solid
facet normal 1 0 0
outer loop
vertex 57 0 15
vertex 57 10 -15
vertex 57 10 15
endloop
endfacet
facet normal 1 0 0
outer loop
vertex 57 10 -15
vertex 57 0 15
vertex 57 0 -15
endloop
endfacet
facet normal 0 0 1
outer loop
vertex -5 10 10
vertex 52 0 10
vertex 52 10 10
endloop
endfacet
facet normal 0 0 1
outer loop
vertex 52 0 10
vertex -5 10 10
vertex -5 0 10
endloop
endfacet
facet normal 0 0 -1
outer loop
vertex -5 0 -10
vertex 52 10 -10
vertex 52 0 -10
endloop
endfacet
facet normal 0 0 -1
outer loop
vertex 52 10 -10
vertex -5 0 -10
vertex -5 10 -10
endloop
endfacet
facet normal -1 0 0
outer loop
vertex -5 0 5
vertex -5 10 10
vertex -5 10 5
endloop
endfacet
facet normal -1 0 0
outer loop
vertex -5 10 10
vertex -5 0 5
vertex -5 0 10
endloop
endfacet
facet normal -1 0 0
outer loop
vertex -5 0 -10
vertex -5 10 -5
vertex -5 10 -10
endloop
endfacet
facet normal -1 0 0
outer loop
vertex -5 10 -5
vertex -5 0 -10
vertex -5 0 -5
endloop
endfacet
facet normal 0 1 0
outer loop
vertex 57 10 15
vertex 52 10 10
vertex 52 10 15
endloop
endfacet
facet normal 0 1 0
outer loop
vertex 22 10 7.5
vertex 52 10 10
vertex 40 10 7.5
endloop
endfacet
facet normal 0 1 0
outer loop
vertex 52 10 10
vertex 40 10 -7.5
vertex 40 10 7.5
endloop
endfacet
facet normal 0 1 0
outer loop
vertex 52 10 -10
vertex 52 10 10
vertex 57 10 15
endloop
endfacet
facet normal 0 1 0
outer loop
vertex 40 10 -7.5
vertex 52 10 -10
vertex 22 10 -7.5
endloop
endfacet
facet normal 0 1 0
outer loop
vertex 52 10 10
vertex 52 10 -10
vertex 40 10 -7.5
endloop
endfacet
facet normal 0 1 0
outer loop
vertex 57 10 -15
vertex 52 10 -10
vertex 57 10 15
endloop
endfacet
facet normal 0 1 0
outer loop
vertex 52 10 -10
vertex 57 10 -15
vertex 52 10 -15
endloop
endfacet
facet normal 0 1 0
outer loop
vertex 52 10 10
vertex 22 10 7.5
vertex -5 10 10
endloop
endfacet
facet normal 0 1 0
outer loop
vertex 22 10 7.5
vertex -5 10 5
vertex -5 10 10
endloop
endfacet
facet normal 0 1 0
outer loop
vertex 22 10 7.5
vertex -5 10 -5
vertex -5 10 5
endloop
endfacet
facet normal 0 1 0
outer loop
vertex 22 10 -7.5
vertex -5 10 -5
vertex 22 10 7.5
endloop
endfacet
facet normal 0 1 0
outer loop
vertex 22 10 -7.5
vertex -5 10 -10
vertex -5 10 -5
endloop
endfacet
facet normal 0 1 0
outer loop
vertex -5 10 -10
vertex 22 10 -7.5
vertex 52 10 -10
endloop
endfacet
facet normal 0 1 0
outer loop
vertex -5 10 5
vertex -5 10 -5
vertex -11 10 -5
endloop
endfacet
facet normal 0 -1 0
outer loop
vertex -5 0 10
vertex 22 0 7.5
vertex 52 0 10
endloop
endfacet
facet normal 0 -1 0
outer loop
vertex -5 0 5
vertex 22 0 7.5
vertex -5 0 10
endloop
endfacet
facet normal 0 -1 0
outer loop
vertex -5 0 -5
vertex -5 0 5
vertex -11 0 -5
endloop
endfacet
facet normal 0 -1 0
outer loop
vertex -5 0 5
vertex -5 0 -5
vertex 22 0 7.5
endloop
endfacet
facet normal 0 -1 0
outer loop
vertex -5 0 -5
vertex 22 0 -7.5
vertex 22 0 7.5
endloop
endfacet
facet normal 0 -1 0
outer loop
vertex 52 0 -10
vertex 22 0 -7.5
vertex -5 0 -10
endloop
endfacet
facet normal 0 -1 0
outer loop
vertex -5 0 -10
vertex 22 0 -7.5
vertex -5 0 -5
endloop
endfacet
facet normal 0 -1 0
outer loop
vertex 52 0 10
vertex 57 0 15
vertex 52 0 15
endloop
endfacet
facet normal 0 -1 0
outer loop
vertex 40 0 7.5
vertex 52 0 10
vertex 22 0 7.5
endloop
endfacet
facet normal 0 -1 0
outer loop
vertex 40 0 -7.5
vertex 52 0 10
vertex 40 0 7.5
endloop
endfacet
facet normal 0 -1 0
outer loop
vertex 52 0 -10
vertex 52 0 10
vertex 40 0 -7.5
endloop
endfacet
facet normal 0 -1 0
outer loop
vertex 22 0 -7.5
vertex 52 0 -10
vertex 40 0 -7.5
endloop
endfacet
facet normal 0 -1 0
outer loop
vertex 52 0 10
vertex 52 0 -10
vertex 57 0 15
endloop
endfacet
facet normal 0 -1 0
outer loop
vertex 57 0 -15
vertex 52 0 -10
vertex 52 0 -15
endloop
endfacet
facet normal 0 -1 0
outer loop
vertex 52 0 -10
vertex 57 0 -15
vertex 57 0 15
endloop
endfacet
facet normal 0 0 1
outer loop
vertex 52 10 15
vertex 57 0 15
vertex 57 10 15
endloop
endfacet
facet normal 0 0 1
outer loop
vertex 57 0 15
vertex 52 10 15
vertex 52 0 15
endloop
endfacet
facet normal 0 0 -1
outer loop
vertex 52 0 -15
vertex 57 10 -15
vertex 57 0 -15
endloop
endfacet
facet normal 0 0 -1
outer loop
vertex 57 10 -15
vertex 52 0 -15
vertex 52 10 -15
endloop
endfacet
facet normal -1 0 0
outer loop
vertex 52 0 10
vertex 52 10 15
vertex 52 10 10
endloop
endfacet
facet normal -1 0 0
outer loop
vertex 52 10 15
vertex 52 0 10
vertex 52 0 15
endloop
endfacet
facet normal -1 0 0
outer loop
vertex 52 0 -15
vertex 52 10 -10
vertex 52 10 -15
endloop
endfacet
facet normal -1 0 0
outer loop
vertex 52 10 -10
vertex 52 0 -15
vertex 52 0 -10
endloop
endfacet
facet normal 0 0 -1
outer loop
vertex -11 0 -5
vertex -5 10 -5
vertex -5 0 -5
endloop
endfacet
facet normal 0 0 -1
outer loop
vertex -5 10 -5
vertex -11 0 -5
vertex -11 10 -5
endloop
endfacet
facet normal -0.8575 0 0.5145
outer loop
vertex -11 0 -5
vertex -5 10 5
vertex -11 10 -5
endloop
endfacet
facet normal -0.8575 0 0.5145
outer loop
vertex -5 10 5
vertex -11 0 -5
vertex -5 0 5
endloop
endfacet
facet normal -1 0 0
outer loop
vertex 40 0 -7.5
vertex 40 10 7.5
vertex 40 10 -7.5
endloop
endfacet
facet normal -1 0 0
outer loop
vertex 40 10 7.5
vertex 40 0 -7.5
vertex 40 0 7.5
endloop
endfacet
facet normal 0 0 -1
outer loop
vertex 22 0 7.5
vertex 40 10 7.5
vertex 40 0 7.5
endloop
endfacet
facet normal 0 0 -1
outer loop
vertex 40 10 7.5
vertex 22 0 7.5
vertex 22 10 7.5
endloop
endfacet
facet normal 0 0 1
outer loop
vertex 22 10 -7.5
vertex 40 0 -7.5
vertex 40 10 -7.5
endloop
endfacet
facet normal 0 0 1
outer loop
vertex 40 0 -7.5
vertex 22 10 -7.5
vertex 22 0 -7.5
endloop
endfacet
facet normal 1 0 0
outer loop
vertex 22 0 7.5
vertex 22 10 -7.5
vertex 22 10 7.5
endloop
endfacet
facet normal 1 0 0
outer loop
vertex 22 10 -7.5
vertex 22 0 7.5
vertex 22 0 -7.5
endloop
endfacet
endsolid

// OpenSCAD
difference() {
union() {

    translate([0-5, 0, -10])
        cube([60+2, 10, 20]);

    translate([50+2, 0, -15])
        cube([5, 10, 30]);

    // Driehoekige uitsparing
    translate([-6-5, 5, -5])
        rotate([90, 0, 0])
            linear_extrude(height=10, center=true)
                polygon([
                    [0, 0],
                    [10, 0],
                    [6, 10]
                ]);


    
}



    translate([30-8, -5, -5-2.5])
        cube([10+8, 24, 15]);


}
